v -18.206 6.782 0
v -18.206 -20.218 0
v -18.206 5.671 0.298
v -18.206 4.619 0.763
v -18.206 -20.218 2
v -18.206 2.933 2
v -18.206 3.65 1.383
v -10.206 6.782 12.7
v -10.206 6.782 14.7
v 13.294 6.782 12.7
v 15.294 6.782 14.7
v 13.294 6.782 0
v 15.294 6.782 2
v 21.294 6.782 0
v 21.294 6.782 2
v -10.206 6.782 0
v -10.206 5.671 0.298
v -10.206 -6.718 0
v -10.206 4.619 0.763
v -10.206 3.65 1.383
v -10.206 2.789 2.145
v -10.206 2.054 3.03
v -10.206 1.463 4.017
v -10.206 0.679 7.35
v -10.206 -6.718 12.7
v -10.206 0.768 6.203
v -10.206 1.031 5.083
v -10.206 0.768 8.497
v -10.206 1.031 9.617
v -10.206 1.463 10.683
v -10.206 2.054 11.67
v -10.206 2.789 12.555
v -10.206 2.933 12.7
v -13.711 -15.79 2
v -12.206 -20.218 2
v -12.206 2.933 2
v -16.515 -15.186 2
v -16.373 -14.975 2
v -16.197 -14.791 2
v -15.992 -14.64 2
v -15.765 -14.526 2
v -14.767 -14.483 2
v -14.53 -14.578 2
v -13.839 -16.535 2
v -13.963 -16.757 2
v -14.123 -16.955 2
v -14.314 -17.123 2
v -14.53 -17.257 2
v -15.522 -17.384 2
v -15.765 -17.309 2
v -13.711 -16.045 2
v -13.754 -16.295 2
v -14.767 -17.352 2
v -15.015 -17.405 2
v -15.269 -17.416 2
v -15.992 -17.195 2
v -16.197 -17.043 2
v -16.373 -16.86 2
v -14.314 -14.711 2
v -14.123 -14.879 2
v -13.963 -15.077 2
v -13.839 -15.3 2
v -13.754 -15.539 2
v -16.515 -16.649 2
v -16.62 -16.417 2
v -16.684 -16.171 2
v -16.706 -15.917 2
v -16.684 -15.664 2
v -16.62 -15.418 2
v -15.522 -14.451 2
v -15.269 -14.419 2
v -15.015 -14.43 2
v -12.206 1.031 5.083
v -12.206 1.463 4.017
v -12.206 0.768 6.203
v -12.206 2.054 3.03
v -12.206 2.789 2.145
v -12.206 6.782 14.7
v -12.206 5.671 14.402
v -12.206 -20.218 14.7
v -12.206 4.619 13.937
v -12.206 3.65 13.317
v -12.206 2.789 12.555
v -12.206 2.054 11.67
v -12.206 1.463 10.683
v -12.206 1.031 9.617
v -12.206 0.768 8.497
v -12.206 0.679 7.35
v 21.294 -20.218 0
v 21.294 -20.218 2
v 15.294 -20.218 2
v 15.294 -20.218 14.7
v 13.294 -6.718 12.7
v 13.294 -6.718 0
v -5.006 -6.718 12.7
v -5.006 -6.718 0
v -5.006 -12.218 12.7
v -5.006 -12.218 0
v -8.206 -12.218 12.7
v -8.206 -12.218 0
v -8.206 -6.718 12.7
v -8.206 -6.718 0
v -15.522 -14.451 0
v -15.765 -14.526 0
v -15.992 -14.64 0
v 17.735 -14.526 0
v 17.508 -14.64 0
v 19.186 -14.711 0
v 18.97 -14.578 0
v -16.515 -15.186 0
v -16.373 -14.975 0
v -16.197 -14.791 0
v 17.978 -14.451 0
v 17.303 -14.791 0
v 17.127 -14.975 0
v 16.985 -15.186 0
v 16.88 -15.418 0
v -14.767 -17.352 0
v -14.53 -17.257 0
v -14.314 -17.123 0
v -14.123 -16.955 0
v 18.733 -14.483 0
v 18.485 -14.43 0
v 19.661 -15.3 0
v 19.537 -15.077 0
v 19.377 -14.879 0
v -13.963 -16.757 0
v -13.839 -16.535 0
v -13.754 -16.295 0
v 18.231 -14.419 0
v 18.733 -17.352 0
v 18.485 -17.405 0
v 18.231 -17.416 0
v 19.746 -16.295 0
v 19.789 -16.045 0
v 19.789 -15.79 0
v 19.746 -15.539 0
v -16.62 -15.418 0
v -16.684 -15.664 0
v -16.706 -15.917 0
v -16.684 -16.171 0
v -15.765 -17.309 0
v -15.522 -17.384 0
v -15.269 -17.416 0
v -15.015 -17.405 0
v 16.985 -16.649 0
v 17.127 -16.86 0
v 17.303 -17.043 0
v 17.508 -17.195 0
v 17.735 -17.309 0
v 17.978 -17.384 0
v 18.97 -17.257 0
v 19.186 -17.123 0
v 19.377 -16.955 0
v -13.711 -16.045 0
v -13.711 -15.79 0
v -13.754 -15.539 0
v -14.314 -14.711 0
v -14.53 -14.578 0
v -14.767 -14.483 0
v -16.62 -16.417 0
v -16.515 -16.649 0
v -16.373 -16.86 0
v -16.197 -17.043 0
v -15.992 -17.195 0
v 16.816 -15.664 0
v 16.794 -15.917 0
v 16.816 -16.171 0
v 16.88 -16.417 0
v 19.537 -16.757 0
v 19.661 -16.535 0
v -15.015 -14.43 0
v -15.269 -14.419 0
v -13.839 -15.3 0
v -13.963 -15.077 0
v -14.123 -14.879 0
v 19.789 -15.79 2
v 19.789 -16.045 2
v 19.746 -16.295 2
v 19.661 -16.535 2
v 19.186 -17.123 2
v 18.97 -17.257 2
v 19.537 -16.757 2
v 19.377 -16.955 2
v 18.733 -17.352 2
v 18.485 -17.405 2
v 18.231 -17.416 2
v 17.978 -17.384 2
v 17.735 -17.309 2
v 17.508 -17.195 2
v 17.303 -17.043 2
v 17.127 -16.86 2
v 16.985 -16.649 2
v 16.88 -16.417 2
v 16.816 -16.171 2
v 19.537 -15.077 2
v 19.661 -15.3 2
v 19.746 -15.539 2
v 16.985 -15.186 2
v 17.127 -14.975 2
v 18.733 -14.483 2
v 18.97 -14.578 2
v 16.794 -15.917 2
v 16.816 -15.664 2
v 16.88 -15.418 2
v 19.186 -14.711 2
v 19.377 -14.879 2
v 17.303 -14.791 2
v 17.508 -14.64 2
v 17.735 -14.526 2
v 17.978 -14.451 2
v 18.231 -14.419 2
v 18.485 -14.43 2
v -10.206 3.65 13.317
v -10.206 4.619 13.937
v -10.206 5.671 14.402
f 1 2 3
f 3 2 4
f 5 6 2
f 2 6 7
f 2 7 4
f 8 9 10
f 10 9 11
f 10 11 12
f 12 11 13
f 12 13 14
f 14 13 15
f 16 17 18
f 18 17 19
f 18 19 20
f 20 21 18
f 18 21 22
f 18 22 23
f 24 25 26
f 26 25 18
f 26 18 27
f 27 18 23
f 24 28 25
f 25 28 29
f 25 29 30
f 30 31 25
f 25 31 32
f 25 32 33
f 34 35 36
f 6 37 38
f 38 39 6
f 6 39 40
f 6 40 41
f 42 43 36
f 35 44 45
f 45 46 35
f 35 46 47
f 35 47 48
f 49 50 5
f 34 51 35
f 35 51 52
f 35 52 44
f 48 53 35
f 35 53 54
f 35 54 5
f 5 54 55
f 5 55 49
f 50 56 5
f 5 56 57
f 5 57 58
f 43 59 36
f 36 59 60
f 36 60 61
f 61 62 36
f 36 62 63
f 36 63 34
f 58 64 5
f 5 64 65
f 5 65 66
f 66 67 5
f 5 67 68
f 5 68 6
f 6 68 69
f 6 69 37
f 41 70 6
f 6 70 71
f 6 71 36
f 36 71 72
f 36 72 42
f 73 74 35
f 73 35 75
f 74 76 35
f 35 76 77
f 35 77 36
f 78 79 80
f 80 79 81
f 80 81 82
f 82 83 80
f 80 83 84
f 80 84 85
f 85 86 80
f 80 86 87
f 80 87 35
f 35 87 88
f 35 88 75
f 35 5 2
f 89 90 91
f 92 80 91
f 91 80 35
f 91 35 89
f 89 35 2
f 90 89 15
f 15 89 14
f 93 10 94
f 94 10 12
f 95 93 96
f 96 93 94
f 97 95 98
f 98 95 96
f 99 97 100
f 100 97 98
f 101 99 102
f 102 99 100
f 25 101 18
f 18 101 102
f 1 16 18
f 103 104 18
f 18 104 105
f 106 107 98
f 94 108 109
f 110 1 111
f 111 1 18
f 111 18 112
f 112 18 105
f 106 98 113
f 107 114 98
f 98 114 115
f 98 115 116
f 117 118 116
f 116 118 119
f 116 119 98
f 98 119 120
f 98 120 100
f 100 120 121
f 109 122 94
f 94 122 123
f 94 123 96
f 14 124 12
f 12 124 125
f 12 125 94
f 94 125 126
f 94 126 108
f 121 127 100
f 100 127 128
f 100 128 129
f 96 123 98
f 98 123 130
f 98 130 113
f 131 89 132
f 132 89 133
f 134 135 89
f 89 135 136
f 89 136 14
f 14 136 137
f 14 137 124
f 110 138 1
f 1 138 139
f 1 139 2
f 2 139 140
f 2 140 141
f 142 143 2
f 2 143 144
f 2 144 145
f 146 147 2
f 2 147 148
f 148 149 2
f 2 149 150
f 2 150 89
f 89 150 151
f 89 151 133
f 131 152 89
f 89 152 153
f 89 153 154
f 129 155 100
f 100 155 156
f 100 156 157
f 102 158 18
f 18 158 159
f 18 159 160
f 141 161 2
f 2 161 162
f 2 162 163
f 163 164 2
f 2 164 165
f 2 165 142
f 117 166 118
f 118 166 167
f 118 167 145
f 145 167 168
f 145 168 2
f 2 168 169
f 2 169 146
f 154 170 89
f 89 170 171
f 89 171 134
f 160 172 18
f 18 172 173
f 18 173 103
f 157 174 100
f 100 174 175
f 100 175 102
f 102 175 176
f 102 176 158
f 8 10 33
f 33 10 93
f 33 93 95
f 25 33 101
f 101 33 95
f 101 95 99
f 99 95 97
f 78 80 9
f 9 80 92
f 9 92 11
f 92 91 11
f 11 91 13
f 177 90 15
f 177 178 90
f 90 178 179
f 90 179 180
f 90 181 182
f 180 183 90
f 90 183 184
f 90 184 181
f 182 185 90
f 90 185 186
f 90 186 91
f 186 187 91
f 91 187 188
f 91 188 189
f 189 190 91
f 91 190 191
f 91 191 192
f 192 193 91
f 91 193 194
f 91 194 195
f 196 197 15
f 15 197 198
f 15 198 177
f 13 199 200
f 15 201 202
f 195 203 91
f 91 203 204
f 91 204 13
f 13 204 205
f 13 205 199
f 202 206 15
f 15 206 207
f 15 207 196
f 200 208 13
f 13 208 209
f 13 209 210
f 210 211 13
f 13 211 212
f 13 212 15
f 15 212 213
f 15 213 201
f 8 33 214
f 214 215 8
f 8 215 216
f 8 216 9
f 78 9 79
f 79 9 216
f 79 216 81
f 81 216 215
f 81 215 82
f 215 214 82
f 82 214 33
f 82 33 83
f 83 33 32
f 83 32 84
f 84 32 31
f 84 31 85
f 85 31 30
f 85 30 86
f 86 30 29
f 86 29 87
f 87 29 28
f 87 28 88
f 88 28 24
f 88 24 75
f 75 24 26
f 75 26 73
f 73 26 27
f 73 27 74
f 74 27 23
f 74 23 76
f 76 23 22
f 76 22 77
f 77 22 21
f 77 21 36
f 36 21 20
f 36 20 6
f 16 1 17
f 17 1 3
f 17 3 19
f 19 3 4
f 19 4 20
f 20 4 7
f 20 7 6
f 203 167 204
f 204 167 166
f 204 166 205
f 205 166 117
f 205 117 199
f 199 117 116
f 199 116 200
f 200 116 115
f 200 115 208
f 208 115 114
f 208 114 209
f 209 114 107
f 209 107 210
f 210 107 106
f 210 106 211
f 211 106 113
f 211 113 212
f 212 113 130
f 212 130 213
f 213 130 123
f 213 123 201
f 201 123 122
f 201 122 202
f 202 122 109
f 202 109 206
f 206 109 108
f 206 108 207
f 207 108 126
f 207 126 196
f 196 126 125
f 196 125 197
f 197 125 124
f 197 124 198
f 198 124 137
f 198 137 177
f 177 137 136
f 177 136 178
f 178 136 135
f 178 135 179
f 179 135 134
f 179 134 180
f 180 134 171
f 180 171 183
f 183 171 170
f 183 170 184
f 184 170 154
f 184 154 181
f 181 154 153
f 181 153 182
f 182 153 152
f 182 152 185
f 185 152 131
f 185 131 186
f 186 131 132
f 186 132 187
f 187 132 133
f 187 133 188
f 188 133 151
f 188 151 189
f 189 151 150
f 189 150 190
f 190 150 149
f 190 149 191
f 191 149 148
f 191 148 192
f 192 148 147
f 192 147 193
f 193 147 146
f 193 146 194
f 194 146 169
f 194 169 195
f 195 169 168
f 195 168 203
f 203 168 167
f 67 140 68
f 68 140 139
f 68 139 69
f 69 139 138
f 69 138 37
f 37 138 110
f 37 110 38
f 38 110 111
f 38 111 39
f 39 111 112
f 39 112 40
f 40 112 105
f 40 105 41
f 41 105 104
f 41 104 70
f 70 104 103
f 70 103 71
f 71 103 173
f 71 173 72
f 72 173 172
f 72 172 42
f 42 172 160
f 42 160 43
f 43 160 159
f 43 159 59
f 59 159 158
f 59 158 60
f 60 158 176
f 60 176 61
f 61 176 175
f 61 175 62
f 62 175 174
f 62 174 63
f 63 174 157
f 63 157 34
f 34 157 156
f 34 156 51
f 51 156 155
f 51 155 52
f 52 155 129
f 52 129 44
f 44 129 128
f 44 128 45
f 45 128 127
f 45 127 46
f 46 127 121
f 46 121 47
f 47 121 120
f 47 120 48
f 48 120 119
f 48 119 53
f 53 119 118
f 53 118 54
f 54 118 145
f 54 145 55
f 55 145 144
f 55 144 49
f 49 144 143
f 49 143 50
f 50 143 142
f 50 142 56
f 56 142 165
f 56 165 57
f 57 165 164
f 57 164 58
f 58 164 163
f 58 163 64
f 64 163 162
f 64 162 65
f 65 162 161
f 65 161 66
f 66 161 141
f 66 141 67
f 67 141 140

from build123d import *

# Parameters (mm, degrees)
BOSS_EXTRUDE1_DEPTH = 12.7
SKETCH2_W           = 39.5
SKETCH2_H           = 27
BOSS_EXTRUDE2_DEPTH = 2
SKETCH3_W           = 6
SKETCH3_H           = 12.7
CUT_EXTRUDE1_DEPTH  = 38.396997736
CUT_EXTRUDE2_START  = -2
CUT_EXTRUDE2_DEPTH  = 12
SKETCH5_R           = 1.5
CUT_EXTRUDE3_DEPTH  = 33.837341068


with BuildPart() as part:
    # Sketch1 → Boss-Extrude1 (new body)
    with BuildSketch(Plane.XY):
        Polygon((-10.205741627, 6.782296651), (-10.205741627, -6.717703349), (-8.205741627, -6.717703349), (-8.205741627, -12.217703349), (-5.005741627, -12.217703349), (-5.005741627, -6.717703349), (13.294258373, -6.717703349), (13.294258373, 6.782296651), (21.294258373, 6.782296651), (21.294258373, -20.217703349), (-18.205741627, -20.217703349), (-18.205741627, 6.782296651), align=None)
    extrude(amount=BOSS_EXTRUDE1_DEPTH)

    # Sketch2 → Boss-Extrude2 (add)
    with BuildSketch(Plane.XY.offset(12.7)):
        with Locations((1.544258373, -6.717703349)):
            Rectangle(SKETCH2_W, SKETCH2_H)
    extrude(amount=BOSS_EXTRUDE2_DEPTH)

    # Sketch3 → Cut-Extrude1 (cut, through all)
    with BuildSketch(Plane(origin=(0, 6.782296651, 0), x_dir=(1, 0, 0), z_dir=(0, 1, 0))):
        with Locations((-15.205741627, -8.35)):
            Rectangle(SKETCH3_W, SKETCH3_H)
        with Locations((18.294258373, -8.35)):
            Rectangle(SKETCH3_W, SKETCH3_H)
    extrude(amount=-CUT_EXTRUDE1_DEPTH, mode=Mode.SUBTRACT)

    # Sketch4 → Cut-Extrude2 (cut)
    with BuildSketch(Plane.ZY.offset(12.205741627).offset(CUT_EXTRUDE2_START)):
        with BuildLine():
            Line((0, 6.782296651), (14.7, 6.782296651))
            ThreePointArc((14.7, 6.782296651), (7.35, 0.679443812), (0, 6.782296651))
        make_face()
    extrude(amount=CUT_EXTRUDE2_DEPTH, mode=Mode.SUBTRACT)

    # Sketch5 → Cut-Extrude3 (cut, through all)
    with BuildSketch(Plane(origin=(0, 0, 0), x_dir=(-1, 0, 0), z_dir=(0, 0, -1))):
        with Locations((-18.294258373, -15.917381118)):
            Circle(SKETCH5_R)
        with Locations((15.205741627, -15.917381118)):
            Circle(SKETCH5_R)
    extrude(amount=-CUT_EXTRUDE3_DEPTH, mode=Mode.SUBTRACT)


solid = part.part
